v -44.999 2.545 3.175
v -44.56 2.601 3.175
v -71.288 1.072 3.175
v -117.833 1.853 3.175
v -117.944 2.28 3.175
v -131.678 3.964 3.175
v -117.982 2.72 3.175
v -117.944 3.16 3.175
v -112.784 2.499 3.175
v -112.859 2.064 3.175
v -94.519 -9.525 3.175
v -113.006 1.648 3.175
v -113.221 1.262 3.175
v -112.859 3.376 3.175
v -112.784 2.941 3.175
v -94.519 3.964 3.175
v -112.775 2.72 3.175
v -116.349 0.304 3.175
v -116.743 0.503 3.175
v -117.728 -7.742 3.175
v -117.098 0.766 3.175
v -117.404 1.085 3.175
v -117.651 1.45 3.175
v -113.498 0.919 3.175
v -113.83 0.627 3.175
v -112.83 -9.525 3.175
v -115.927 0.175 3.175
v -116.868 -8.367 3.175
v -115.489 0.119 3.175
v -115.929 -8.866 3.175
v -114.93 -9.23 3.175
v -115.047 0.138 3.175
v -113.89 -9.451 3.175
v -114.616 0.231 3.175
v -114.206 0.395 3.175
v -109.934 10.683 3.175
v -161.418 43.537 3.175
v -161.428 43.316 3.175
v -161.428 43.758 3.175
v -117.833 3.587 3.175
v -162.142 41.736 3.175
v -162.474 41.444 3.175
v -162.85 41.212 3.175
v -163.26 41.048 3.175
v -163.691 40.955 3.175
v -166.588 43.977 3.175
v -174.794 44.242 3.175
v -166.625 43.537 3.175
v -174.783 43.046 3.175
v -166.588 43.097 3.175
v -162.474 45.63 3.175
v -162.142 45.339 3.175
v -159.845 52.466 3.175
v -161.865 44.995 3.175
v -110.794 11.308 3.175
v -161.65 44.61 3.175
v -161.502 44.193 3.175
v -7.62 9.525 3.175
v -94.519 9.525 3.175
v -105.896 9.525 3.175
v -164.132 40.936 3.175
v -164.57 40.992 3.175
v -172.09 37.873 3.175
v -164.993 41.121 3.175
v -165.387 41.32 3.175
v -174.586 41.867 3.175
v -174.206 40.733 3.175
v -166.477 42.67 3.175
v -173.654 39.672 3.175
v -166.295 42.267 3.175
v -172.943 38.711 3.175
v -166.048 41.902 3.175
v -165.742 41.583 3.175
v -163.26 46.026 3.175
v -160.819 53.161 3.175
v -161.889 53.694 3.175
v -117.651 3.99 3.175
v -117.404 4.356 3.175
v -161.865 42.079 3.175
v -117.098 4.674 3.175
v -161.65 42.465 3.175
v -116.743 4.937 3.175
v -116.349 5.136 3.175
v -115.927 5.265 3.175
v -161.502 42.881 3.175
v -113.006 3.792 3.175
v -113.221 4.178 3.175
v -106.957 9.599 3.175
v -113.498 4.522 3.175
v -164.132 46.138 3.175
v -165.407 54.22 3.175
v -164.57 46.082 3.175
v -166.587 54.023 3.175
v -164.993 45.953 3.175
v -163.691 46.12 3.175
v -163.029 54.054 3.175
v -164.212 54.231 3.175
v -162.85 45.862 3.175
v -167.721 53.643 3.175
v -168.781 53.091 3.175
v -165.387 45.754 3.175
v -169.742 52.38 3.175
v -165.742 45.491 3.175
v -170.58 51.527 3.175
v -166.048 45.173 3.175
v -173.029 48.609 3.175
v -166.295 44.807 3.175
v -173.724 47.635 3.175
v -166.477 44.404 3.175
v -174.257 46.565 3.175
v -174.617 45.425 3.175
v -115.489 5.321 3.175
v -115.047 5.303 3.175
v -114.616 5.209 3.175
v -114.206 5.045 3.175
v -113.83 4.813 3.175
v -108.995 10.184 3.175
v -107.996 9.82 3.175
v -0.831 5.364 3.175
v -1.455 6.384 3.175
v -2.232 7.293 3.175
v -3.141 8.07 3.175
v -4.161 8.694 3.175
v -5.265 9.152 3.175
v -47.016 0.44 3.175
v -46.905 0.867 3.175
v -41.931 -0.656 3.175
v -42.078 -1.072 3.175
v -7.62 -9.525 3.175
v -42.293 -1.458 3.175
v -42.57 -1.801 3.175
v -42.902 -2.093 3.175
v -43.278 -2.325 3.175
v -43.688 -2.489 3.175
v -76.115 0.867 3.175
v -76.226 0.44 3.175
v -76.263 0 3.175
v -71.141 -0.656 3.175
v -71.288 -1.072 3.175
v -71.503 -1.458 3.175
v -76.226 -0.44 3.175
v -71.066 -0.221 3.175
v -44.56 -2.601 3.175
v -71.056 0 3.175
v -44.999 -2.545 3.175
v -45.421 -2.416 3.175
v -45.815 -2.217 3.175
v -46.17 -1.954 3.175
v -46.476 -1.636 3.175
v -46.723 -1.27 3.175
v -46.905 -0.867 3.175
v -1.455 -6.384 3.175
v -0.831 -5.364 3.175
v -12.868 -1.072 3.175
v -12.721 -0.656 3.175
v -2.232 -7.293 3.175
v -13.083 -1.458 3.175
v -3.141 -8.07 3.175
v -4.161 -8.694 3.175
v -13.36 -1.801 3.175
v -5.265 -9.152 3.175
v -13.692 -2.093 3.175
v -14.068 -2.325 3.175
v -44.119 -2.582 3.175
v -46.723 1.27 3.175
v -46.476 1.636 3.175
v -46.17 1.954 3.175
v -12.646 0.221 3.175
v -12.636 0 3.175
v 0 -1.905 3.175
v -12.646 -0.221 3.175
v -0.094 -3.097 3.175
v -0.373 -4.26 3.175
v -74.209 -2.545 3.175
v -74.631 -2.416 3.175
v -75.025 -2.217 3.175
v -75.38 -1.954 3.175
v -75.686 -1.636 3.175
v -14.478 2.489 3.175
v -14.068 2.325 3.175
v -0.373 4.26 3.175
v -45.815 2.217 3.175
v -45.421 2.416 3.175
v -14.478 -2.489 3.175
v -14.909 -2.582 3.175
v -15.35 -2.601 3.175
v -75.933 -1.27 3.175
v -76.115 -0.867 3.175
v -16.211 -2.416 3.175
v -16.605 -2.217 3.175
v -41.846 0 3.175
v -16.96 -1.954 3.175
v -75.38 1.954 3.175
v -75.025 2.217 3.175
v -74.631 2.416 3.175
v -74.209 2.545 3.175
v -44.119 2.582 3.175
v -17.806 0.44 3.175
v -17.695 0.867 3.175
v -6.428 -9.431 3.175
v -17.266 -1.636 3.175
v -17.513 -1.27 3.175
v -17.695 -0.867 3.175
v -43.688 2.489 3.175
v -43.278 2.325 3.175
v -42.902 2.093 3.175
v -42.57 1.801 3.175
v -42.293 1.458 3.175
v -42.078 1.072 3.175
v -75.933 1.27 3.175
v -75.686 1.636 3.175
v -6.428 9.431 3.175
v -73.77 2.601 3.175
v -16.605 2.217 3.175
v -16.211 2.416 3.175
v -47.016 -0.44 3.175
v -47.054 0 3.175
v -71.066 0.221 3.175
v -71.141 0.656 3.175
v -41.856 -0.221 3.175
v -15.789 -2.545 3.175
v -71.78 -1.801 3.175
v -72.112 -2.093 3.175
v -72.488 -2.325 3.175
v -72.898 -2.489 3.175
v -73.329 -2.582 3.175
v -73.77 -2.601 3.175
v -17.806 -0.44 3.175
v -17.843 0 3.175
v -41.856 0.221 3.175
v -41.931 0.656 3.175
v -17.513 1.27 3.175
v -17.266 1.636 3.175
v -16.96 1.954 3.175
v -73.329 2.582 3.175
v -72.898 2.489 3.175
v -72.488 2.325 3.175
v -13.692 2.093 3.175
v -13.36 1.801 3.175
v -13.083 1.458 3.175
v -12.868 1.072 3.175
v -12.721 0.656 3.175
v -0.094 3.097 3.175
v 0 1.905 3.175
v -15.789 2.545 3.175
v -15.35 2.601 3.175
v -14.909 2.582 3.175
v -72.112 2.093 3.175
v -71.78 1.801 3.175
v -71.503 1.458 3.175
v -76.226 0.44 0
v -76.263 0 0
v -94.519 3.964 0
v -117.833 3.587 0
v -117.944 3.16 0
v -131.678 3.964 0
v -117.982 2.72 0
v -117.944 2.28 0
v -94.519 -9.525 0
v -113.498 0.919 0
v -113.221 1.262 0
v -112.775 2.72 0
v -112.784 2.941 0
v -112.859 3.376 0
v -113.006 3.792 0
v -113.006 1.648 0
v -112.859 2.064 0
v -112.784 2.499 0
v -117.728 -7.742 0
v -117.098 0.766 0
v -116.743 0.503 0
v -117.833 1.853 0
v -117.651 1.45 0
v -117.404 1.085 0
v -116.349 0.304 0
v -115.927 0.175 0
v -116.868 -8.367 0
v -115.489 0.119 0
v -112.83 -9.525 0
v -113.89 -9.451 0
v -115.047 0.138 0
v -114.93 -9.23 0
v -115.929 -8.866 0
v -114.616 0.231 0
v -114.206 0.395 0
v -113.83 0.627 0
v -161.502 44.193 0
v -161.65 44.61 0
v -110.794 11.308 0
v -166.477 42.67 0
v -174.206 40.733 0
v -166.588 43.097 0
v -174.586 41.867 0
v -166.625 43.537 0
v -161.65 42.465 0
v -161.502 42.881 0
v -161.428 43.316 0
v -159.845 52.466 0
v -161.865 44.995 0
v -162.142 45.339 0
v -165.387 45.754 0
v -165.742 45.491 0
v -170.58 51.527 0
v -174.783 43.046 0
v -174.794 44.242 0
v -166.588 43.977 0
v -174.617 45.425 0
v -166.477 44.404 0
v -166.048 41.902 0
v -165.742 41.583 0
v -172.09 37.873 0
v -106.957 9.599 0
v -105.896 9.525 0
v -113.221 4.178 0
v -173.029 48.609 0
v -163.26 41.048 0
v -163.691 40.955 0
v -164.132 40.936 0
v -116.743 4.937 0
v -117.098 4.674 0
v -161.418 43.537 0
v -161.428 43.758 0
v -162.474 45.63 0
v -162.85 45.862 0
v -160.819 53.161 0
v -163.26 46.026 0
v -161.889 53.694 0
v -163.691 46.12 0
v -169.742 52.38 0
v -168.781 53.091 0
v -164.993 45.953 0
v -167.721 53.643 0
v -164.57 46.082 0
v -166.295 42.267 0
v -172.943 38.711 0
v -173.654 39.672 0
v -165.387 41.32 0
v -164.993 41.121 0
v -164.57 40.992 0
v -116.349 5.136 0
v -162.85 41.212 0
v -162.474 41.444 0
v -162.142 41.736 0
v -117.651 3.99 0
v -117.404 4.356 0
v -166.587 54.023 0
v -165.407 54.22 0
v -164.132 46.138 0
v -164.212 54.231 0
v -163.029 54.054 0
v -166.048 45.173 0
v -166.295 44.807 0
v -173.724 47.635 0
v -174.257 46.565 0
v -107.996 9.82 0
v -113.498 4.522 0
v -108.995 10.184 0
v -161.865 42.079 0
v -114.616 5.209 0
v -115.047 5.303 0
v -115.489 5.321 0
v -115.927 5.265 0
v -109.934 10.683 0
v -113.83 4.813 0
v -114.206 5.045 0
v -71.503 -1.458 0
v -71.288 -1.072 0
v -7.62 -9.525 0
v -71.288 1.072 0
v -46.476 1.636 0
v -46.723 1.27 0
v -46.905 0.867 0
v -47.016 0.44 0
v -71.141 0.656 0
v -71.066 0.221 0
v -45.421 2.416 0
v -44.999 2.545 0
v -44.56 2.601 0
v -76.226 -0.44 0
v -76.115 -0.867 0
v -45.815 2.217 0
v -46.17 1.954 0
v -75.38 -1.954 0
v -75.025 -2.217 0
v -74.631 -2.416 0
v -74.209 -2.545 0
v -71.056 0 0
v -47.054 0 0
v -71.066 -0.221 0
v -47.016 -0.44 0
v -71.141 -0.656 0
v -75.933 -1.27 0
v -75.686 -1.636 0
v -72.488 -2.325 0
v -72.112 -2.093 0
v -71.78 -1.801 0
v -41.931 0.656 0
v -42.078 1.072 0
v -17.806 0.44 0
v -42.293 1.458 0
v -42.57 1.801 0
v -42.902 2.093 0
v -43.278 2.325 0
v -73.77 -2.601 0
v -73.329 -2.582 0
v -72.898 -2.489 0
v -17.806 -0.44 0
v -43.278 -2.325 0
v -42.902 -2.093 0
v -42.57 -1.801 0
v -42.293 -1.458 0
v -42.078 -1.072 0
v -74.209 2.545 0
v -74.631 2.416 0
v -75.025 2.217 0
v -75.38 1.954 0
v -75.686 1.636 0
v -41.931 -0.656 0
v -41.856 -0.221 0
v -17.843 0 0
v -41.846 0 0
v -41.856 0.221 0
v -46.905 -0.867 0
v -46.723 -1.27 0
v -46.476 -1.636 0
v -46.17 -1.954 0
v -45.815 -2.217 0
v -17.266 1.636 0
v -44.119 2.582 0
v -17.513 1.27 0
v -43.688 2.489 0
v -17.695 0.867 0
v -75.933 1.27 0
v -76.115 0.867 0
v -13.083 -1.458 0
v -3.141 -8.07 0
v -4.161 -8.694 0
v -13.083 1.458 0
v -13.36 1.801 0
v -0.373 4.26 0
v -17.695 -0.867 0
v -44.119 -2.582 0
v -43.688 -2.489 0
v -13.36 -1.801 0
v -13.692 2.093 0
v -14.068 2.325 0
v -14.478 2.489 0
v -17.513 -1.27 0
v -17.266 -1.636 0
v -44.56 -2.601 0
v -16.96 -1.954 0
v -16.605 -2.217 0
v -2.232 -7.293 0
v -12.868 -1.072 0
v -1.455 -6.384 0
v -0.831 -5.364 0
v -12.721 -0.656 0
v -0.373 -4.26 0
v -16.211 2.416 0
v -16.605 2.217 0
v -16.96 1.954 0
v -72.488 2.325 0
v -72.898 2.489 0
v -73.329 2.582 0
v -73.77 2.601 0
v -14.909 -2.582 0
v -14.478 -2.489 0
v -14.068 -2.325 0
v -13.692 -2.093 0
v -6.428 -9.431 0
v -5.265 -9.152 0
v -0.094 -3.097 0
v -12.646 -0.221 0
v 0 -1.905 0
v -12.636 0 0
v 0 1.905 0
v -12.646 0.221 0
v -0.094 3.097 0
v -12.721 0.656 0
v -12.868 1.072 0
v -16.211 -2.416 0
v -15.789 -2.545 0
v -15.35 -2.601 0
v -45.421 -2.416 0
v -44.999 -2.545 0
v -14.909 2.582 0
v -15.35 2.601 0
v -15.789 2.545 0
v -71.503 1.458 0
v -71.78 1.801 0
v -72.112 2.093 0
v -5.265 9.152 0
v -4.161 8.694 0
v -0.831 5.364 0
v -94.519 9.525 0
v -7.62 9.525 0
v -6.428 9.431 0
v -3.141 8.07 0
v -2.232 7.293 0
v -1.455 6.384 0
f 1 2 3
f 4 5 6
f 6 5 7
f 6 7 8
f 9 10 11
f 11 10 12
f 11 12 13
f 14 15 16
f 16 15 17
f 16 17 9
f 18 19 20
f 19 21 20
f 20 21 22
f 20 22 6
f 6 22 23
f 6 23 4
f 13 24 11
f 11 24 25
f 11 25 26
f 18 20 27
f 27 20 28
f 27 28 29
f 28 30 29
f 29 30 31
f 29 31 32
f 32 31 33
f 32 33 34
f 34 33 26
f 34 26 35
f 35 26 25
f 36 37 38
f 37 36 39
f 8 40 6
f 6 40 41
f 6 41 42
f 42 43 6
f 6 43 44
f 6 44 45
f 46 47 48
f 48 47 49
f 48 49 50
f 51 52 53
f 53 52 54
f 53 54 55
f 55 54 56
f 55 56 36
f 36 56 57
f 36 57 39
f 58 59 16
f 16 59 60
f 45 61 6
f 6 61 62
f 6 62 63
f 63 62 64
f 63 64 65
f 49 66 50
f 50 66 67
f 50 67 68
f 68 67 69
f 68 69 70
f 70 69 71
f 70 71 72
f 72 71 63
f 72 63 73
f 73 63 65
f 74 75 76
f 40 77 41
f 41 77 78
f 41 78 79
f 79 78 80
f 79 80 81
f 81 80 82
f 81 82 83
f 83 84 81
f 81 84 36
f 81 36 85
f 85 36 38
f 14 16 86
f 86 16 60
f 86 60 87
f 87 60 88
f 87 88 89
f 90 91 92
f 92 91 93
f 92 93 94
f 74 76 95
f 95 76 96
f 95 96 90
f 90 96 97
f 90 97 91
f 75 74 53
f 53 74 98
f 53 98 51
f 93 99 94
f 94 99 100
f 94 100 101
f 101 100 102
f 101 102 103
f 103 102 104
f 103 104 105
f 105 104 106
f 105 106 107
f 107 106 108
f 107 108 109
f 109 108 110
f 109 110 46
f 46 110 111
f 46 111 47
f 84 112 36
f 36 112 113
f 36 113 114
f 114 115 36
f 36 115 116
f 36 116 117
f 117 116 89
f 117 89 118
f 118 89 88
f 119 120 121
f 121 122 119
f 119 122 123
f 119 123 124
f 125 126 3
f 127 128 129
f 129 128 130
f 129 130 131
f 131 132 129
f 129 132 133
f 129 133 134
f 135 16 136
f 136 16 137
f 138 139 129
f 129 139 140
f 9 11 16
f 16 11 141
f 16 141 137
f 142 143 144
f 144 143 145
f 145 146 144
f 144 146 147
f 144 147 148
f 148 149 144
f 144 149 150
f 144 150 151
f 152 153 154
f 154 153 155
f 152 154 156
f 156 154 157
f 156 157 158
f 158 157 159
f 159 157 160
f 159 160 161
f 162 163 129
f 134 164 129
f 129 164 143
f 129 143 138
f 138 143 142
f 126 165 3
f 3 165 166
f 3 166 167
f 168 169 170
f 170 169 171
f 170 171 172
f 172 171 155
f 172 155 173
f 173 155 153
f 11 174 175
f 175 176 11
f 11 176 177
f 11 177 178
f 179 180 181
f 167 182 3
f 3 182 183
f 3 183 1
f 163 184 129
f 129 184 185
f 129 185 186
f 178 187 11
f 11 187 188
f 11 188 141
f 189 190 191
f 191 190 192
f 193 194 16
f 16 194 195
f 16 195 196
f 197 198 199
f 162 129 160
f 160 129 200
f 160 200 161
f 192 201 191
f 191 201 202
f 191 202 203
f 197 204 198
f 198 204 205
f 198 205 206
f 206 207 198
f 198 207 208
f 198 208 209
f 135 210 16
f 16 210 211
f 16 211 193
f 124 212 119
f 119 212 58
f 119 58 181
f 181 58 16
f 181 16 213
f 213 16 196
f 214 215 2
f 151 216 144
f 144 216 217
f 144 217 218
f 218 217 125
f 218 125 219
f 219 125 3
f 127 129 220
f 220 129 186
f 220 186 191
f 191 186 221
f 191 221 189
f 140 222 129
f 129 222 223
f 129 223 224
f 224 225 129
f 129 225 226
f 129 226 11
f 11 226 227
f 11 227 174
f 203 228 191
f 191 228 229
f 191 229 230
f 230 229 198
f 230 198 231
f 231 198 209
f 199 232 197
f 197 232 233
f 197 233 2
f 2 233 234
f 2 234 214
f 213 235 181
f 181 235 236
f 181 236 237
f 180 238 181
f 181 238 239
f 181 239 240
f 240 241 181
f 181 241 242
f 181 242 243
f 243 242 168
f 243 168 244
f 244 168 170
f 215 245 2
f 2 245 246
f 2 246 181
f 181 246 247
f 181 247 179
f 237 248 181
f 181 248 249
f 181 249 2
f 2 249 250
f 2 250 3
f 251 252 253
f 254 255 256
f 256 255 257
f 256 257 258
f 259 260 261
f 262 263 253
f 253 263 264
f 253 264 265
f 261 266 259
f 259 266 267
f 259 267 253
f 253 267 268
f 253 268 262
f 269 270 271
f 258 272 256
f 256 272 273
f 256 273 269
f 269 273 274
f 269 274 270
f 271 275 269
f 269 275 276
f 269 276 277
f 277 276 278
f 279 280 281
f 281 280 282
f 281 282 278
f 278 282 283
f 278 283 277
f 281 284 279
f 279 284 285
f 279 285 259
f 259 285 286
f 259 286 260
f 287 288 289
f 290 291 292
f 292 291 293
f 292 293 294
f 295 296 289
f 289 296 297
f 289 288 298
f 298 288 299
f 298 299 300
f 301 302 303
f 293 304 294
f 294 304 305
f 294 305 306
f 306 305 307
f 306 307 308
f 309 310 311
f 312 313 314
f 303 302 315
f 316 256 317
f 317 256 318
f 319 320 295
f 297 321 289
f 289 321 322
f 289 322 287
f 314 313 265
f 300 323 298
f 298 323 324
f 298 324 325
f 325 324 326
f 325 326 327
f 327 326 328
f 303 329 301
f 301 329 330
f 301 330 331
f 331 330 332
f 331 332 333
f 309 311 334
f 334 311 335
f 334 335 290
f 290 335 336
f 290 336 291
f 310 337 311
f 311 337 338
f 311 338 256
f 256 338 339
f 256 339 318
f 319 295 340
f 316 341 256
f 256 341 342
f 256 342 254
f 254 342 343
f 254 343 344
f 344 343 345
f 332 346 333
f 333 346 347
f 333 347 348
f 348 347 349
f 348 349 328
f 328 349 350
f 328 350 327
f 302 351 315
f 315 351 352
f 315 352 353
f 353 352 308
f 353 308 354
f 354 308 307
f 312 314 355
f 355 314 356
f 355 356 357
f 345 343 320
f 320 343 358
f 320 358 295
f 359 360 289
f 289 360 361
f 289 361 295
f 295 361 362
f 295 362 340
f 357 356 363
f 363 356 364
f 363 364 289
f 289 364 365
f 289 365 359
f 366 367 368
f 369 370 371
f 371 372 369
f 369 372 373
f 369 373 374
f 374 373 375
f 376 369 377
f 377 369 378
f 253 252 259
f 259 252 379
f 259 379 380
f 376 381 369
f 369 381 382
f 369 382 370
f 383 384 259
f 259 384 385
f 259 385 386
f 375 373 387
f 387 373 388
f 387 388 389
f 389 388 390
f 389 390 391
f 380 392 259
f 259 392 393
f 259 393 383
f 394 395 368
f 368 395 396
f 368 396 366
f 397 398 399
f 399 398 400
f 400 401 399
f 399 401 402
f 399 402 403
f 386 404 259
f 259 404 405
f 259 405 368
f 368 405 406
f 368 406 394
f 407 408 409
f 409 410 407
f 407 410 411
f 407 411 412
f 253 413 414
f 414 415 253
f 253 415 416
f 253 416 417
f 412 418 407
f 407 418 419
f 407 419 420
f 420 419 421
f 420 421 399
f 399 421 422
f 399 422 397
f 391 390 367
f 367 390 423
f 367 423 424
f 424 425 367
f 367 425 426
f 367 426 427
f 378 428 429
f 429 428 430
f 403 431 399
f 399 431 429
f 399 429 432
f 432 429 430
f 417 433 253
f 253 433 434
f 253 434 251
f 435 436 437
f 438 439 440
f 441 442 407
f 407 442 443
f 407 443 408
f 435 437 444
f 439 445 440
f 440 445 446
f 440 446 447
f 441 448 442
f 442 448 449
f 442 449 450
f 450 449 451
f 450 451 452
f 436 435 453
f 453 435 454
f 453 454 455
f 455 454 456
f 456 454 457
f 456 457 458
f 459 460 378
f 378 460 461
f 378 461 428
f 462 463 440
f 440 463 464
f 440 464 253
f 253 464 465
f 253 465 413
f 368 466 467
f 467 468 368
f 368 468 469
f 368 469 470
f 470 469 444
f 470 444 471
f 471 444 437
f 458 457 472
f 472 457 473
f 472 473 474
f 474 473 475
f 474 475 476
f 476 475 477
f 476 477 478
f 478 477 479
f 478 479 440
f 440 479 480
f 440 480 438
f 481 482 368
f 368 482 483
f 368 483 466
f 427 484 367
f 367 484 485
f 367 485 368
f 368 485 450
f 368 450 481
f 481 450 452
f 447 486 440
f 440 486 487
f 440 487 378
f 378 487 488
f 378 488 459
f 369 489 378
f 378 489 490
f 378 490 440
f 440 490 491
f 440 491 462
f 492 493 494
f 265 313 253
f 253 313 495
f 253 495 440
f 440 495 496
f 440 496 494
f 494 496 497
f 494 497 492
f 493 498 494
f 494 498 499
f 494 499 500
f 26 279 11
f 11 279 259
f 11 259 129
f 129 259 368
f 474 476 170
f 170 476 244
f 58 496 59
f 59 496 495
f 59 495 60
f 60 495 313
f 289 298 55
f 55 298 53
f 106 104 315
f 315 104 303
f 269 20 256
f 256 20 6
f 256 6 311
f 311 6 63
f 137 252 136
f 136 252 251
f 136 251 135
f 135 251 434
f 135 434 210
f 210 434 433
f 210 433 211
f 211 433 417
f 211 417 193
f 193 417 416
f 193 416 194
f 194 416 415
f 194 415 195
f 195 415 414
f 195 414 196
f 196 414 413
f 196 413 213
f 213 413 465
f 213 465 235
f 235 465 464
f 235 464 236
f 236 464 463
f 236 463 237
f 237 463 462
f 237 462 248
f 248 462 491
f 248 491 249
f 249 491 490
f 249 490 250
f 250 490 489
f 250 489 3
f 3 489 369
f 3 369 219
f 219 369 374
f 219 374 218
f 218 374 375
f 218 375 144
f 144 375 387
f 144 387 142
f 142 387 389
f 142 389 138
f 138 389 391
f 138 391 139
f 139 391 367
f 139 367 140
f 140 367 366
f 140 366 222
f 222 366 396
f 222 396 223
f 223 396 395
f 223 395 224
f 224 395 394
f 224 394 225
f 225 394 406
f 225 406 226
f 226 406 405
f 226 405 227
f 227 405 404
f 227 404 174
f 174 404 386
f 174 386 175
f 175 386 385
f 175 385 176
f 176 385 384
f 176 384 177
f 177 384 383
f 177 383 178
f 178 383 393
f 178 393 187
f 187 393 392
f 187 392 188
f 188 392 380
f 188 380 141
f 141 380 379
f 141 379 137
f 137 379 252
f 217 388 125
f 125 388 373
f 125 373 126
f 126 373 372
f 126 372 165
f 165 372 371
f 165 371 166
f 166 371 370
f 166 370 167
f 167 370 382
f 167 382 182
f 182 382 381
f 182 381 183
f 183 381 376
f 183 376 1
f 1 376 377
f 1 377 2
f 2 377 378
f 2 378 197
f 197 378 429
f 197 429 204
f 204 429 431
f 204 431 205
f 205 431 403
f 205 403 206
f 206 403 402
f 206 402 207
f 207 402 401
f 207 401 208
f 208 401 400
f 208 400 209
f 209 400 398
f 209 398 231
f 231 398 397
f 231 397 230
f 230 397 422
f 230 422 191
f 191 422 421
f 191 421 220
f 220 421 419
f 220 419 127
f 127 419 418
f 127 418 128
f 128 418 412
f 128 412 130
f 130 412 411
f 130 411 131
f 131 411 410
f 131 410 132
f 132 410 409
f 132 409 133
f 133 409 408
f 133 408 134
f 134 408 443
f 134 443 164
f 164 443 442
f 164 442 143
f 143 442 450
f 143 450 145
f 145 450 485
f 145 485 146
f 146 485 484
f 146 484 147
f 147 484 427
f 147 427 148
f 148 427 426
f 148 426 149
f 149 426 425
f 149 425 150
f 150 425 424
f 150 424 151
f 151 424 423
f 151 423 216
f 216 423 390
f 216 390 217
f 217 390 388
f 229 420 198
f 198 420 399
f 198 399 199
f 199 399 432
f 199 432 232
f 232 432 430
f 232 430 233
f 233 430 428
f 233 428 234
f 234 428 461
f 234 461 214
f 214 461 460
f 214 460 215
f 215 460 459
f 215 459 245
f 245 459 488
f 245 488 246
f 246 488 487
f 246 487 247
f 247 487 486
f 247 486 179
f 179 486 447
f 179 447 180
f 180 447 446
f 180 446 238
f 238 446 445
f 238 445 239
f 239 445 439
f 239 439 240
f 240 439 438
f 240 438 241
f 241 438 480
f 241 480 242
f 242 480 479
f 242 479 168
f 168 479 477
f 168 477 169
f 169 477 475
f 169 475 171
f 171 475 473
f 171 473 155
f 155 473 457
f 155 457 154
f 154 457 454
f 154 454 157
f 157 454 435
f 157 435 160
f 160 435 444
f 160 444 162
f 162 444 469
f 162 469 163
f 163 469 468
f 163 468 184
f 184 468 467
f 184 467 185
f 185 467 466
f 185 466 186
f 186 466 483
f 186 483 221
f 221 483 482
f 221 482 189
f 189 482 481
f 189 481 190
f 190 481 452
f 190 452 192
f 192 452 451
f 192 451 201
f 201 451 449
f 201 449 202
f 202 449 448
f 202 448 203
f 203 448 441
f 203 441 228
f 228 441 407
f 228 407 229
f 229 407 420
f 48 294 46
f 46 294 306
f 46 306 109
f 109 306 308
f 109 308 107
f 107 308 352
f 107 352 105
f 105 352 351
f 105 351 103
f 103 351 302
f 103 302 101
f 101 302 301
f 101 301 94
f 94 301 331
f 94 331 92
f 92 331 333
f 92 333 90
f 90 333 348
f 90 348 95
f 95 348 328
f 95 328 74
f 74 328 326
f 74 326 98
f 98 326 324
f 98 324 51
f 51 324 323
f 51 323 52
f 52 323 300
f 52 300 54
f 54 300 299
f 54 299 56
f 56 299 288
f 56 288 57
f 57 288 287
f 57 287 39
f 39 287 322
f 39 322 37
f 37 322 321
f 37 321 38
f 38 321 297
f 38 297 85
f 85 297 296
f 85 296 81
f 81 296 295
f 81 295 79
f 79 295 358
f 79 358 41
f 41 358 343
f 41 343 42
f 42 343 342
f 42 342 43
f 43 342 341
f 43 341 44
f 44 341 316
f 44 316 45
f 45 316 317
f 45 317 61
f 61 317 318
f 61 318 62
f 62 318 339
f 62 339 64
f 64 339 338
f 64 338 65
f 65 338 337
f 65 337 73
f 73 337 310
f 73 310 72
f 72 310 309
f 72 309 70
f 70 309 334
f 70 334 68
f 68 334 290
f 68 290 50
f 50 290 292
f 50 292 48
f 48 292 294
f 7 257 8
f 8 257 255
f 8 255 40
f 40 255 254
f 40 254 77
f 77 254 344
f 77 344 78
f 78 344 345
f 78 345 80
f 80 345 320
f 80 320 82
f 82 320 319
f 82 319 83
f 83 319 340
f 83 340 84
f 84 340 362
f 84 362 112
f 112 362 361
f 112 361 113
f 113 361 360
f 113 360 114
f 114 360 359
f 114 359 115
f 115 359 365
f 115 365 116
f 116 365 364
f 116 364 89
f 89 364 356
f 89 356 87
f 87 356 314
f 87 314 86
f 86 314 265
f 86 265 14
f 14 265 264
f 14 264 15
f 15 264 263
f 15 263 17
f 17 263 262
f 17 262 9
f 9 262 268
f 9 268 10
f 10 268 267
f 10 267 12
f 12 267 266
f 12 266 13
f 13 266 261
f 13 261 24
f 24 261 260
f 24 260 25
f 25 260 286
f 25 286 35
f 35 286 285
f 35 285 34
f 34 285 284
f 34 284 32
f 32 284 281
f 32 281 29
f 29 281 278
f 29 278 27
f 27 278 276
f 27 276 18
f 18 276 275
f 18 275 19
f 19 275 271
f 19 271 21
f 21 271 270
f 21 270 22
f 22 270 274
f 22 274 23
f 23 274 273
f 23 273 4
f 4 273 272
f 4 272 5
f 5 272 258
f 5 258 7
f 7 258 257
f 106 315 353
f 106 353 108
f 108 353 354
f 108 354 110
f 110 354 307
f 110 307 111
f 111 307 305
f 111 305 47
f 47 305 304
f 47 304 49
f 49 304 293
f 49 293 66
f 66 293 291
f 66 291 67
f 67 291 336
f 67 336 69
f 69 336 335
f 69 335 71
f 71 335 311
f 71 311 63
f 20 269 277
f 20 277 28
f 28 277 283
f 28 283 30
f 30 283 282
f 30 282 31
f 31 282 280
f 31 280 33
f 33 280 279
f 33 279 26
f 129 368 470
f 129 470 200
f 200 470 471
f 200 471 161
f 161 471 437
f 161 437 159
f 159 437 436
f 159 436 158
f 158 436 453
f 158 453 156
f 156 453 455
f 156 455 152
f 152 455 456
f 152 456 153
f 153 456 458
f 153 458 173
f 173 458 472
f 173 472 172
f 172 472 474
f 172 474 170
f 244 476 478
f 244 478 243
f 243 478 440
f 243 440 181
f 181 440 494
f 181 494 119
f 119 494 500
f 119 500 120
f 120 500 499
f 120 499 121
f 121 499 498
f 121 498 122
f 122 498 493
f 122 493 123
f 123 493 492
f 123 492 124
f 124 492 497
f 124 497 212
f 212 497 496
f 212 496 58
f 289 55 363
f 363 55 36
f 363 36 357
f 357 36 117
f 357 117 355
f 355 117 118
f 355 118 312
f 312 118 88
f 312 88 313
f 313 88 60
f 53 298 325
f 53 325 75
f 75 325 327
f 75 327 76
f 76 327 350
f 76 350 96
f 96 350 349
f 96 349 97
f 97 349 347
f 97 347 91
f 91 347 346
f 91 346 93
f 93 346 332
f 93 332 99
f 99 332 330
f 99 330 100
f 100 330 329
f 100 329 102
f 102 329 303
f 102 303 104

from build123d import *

# Parameters (mm, degrees)
SKETCH2_R           = 2.6035
BOSS_EXTRUDE1_DEPTH = 3.175
FILLET1_R           = 7.62


with BuildPart() as part:
    # Sketch2 → Boss-Extrude1 (new body)
    with BuildSketch(Plane.XY):
        Polygon((0, -9.525), (0, 9.525), (-108.669578778, 9.525), (-165.682370629, 57.364412615), (-177.927474593, 42.771265973), (-115.60321174, -9.525), align=None)
        with Locations((-164.021911069, 43.53711718)):
            Circle(SKETCH2_R, mode=Mode.SUBTRACT)
        with Locations((-115.378088931, 2.720103965)):
            Circle(SKETCH2_R, mode=Mode.SUBTRACT)
        with Locations((-73.66, 0)):
            Circle(SKETCH2_R, mode=Mode.SUBTRACT)
        with Locations((-44.45, 0)):
            Circle(SKETCH2_R, mode=Mode.SUBTRACT)
        with Locations((-15.24, 0)):
            Circle(SKETCH2_R, mode=Mode.SUBTRACT)
    extrude(amount=BOSS_EXTRUDE1_DEPTH)

    # Fillet1
    fillet1_edges = [part.edges().sort_by_distance(p)[0] for p in [
        (-115.60321174, -9.525, 1.5875),
        (-177.927474593, 42.771265973, 1.5875),
        (-165.682370629, 57.364412615, 1.5875),
        (-108.669578778, 9.525, 1.5875),
        (0, 9.525, 1.5875),
        (0, -9.525, 1.5875),
    ]]
    fillet(fillet1_edges, radius=FILLET1_R)


solid = part.part
